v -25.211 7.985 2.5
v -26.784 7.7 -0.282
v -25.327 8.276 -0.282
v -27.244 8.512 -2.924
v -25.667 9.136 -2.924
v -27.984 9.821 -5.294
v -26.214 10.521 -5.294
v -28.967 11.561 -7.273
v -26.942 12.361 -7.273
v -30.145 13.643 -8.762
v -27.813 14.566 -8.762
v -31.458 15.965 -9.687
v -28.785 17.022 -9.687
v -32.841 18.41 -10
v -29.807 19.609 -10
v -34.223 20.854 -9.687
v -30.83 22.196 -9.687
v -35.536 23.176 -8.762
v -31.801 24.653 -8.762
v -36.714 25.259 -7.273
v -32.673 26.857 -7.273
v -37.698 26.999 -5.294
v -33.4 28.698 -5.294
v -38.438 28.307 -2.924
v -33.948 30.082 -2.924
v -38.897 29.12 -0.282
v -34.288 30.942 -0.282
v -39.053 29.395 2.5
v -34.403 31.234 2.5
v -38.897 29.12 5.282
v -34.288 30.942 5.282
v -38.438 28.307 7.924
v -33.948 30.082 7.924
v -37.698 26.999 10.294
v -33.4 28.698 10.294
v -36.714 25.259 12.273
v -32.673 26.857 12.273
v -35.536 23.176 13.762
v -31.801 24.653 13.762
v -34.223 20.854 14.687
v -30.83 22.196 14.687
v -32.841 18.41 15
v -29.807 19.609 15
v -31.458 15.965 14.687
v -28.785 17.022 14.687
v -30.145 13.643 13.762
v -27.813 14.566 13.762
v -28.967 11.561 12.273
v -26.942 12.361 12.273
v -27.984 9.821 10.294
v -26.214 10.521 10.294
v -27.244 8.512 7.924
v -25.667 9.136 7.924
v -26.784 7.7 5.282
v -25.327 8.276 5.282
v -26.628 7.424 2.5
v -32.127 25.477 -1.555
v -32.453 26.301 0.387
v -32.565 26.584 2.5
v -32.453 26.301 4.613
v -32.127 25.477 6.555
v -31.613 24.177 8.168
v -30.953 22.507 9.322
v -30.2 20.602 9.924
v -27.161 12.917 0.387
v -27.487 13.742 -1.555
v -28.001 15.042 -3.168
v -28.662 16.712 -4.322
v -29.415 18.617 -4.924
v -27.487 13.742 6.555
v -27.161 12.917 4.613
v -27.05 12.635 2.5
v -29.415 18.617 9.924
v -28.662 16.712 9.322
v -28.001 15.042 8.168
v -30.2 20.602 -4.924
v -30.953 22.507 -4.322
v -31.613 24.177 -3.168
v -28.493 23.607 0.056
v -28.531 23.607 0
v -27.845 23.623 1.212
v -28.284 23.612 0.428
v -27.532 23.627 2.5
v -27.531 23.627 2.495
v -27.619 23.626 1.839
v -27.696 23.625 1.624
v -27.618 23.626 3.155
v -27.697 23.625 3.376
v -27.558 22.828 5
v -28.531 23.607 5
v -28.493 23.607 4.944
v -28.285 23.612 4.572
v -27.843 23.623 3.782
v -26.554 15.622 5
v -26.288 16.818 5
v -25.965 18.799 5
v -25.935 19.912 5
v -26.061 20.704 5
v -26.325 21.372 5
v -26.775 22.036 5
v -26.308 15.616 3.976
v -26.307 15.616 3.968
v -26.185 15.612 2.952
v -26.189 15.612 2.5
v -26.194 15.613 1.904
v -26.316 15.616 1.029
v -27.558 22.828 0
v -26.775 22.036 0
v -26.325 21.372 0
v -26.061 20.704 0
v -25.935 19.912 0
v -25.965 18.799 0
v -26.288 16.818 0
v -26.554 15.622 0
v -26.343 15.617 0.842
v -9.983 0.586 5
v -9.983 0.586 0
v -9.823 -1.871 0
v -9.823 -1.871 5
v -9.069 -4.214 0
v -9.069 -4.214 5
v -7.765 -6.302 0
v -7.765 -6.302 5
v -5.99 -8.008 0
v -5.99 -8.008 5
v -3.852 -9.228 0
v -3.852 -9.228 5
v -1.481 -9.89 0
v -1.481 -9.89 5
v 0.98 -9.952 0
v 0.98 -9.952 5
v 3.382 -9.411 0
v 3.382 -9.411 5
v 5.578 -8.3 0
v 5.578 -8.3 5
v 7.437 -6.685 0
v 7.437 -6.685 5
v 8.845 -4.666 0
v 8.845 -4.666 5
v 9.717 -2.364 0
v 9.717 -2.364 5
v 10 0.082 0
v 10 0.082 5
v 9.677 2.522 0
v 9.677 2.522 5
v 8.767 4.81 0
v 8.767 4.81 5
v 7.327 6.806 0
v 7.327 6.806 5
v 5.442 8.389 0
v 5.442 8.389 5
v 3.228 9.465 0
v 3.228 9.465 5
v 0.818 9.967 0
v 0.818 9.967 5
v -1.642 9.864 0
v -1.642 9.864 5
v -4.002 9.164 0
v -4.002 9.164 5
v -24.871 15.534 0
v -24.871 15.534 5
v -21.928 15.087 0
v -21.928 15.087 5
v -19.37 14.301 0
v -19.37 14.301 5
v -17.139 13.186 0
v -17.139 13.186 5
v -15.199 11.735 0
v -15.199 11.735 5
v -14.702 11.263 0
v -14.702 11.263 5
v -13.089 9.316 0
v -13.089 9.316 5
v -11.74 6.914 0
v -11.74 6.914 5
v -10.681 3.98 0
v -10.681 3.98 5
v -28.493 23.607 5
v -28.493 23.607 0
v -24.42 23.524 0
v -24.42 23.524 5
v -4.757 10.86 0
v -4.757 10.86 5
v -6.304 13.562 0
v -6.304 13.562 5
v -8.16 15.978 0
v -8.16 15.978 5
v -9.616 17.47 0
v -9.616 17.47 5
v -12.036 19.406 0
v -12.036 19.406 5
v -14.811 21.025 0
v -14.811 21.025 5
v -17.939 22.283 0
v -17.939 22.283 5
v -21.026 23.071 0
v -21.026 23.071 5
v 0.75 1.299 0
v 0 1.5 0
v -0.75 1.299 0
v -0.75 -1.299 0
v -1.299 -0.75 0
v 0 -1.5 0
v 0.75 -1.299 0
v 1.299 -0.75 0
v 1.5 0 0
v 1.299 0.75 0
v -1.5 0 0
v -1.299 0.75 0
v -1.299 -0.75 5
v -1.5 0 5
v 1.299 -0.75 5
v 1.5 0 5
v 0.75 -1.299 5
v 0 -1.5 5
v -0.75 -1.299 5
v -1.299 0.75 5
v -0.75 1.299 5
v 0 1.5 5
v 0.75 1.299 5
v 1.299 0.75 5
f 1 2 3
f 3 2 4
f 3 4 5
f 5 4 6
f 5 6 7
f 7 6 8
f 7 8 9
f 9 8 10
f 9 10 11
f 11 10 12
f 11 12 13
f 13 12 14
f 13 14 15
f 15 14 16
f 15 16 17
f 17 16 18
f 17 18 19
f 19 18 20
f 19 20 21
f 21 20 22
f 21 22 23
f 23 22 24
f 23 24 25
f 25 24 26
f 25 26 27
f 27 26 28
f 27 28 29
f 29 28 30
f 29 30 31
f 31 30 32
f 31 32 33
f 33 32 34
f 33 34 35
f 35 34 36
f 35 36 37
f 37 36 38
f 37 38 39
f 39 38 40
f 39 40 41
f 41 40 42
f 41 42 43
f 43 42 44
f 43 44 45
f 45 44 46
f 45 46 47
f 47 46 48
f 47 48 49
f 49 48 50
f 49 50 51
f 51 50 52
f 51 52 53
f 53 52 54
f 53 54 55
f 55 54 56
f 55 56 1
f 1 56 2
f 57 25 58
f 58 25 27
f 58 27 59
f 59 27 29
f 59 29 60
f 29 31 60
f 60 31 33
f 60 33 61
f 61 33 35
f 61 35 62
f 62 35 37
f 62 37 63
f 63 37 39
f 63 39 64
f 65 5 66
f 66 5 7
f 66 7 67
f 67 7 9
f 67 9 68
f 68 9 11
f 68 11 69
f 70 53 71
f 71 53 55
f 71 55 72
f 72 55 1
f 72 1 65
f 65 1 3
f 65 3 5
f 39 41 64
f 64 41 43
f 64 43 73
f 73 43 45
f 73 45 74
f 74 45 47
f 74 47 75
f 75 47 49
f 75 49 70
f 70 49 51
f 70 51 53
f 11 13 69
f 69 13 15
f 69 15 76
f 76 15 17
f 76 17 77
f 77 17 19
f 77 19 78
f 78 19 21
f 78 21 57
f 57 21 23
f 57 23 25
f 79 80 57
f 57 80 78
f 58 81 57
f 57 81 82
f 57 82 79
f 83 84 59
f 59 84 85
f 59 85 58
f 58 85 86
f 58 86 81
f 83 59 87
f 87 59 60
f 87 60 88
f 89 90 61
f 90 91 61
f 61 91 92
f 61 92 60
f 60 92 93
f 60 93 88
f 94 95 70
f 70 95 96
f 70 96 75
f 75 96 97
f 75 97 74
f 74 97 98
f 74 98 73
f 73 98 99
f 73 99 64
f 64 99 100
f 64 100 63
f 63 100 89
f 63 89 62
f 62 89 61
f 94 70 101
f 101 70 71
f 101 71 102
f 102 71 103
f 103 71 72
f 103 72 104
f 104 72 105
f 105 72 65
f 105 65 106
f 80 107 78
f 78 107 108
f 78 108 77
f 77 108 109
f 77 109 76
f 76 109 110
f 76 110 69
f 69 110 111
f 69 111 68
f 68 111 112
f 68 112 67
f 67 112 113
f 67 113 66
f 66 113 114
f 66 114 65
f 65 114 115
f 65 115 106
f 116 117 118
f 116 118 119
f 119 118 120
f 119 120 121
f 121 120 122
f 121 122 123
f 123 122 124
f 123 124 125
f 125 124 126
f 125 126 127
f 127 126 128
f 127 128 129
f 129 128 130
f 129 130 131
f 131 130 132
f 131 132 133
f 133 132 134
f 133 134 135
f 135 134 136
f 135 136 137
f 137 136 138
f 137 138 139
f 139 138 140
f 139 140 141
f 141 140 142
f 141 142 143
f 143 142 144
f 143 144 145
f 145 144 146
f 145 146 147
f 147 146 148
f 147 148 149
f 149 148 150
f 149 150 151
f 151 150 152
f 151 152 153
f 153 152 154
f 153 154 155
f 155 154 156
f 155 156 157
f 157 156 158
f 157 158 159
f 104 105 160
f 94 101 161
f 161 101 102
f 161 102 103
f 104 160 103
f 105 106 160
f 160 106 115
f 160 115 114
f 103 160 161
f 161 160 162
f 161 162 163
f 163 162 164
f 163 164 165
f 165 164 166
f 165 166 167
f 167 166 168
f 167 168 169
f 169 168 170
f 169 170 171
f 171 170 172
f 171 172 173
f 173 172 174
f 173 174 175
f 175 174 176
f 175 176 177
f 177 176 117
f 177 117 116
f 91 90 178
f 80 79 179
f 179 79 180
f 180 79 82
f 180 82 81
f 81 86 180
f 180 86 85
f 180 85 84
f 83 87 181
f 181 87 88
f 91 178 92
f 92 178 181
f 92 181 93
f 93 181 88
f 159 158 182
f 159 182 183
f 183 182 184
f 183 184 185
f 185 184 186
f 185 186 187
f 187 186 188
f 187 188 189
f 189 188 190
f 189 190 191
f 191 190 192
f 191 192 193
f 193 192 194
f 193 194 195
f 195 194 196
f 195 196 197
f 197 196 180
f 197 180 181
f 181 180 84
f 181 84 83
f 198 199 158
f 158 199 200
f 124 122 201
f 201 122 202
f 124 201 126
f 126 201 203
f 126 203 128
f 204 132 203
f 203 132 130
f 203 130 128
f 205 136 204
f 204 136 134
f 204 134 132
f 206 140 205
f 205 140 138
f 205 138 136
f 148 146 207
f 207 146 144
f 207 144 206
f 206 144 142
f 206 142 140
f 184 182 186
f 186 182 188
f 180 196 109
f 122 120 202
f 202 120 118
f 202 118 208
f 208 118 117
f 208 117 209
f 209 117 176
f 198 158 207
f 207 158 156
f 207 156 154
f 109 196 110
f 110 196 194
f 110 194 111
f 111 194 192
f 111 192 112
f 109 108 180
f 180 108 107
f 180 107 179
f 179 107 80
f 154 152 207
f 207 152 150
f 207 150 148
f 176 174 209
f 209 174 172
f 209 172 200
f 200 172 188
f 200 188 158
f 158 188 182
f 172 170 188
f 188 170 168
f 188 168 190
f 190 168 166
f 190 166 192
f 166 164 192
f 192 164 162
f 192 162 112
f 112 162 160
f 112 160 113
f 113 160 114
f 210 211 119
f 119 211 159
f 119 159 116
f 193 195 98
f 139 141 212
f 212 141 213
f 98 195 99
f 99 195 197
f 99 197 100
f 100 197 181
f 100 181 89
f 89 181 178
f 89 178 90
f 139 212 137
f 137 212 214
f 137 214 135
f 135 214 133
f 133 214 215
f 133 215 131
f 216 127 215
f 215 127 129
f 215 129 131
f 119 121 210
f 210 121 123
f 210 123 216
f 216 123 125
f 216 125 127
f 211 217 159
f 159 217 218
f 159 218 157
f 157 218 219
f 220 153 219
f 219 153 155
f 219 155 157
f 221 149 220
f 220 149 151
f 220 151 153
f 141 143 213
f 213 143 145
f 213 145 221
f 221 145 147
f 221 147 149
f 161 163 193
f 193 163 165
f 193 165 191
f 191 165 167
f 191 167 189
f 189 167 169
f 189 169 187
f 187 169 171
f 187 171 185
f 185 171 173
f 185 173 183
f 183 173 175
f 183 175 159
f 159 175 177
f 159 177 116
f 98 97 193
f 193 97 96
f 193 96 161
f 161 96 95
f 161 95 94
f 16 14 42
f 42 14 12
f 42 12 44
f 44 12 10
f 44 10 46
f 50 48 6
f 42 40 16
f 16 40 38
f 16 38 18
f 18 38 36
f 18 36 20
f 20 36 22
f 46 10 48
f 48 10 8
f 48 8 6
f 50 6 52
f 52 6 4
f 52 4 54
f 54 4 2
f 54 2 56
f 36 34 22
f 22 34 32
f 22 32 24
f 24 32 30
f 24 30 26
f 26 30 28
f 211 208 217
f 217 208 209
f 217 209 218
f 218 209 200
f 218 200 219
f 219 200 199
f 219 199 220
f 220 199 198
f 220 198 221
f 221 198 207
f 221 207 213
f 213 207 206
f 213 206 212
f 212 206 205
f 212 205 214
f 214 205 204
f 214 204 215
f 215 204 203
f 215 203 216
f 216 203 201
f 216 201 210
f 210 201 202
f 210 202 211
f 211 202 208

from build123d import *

# Parameters (mm, degrees)
SKETCH1_R           = 10
BOSS_EXTRUDE1_DEPTH = 5
BOSS_EXTRUDE2_DEPTH = 5
SKETCH3_R           = 12.5
BOSS_EXTRUDE3_DEPTH = 5
SKETCH5_R           = 7.5
BOSS_EXTRUDE4_DEPTH = 5
BOSS_EXTRUDE4_TAPER = 52
CUT_EXTRUDE4_DEPTH  = 26
SKETCH12_R          = 1.5
CUT_EXTRUDE5_DEPTH  = 10


with BuildPart() as part:
    # Sketch1 → Boss-Extrude1 (new body)
    with BuildSketch(Plane.XY):
        Circle(SKETCH1_R)
    extrude(amount=BOSS_EXTRUDE1_DEPTH)

    # Sketch2 → Boss-Extrude2 (add)
    with BuildSketch(Plane(origin=(0, 0, 0), x_dir=(-1, 0, 0), z_dir=(0, 0, -1))):
        with BuildLine():
            Line((28.226697949, 15.611392499), (31.387852607, 23.606970284))
            Line((31.387852607, 23.606970284), (28.492660152, 23.606970284))
            add(Edge.make_bspline(
                [(1.702274754, -2.039901693), (1.751506914, -1.119618262), (1.905629401, 0.736300837), (2.439985578, 4.279152464), (3.573593312, 8.507619636), (5.826230301, 13.181920176), (9.085989857, 17.262755922), (13.259055966, 20.42976386), (18.030055154, 22.500703416), (22.280120083, 23.371095334), (25.78433669, 23.636661982), (27.595284541, 23.636820284), (28.492660152, 23.606970284)],
                knots=[0, 0, 0, 0, 0.0625, 0.125, 0.25, 0.375, 0.5, 0.625, 0.75, 0.875, 0.9375, 1, 1, 1, 1], degree=3))
            Line((1.702274754, -2.039901693), (9.690851664, -2.467264483))
            add(Edge.make_bspline(
                [(9.690851664, -2.467264483), (10.68920872, 16.194753627), (28.226697949, 15.611392499)],
                knots=[0, 0, 0, 1, 1, 1], degree=2))
        make_face()
    extrude(amount=-BOSS_EXTRUDE2_DEPTH)

    # Sketch3 → Boss-Extrude3 (add)
    with BuildSketch(Plane(origin=(-19.073171032, -7.540823824, 0), x_dir=(0, 0, 1), z_dir=(-0.9299562551595503, -0.3676701830304238, 0))):
        with Locations(Location((2.5, 29.194927251, 0), (0, 0, 270))):
            Circle(SKETCH3_R)
    extrude(amount=BOSS_EXTRUDE3_DEPTH)

    # Sketch5 → Boss-Extrude4 (add)
    with BuildSketch(Plane(origin=(-19.073171032, -7.540823824, 0), x_dir=(0, 0, -1), z_dir=(0.9299562551595503, 0.3676701830304238, 0))):
        with Locations((-2.5, 29.194927251)):
            Circle(SKETCH5_R)
    extrude(amount=BOSS_EXTRUDE4_DEPTH, taper=BOSS_EXTRUDE4_TAPER)

    # Sketch11 → Cut-Extrude4 (cut)
    with BuildSketch(Plane.XY.offset(15)):
        Polygon((-39.052933842, 29.395283666), (-26.628493881, 7.42446109), (-33.620316113, 1.865469744), align=None)
    extrude(amount=-CUT_EXTRUDE4_DEPTH, mode=Mode.SUBTRACT)

    # Sketch12 → Cut-Extrude5 (cut)
    with BuildSketch(Plane(origin=(0, 0, 0), x_dir=(-1, 0, 0), z_dir=(0, 0, -1))):
        Circle(SKETCH12_R)
    extrude(amount=-CUT_EXTRUDE5_DEPTH, mode=Mode.SUBTRACT)


solid = part.part
